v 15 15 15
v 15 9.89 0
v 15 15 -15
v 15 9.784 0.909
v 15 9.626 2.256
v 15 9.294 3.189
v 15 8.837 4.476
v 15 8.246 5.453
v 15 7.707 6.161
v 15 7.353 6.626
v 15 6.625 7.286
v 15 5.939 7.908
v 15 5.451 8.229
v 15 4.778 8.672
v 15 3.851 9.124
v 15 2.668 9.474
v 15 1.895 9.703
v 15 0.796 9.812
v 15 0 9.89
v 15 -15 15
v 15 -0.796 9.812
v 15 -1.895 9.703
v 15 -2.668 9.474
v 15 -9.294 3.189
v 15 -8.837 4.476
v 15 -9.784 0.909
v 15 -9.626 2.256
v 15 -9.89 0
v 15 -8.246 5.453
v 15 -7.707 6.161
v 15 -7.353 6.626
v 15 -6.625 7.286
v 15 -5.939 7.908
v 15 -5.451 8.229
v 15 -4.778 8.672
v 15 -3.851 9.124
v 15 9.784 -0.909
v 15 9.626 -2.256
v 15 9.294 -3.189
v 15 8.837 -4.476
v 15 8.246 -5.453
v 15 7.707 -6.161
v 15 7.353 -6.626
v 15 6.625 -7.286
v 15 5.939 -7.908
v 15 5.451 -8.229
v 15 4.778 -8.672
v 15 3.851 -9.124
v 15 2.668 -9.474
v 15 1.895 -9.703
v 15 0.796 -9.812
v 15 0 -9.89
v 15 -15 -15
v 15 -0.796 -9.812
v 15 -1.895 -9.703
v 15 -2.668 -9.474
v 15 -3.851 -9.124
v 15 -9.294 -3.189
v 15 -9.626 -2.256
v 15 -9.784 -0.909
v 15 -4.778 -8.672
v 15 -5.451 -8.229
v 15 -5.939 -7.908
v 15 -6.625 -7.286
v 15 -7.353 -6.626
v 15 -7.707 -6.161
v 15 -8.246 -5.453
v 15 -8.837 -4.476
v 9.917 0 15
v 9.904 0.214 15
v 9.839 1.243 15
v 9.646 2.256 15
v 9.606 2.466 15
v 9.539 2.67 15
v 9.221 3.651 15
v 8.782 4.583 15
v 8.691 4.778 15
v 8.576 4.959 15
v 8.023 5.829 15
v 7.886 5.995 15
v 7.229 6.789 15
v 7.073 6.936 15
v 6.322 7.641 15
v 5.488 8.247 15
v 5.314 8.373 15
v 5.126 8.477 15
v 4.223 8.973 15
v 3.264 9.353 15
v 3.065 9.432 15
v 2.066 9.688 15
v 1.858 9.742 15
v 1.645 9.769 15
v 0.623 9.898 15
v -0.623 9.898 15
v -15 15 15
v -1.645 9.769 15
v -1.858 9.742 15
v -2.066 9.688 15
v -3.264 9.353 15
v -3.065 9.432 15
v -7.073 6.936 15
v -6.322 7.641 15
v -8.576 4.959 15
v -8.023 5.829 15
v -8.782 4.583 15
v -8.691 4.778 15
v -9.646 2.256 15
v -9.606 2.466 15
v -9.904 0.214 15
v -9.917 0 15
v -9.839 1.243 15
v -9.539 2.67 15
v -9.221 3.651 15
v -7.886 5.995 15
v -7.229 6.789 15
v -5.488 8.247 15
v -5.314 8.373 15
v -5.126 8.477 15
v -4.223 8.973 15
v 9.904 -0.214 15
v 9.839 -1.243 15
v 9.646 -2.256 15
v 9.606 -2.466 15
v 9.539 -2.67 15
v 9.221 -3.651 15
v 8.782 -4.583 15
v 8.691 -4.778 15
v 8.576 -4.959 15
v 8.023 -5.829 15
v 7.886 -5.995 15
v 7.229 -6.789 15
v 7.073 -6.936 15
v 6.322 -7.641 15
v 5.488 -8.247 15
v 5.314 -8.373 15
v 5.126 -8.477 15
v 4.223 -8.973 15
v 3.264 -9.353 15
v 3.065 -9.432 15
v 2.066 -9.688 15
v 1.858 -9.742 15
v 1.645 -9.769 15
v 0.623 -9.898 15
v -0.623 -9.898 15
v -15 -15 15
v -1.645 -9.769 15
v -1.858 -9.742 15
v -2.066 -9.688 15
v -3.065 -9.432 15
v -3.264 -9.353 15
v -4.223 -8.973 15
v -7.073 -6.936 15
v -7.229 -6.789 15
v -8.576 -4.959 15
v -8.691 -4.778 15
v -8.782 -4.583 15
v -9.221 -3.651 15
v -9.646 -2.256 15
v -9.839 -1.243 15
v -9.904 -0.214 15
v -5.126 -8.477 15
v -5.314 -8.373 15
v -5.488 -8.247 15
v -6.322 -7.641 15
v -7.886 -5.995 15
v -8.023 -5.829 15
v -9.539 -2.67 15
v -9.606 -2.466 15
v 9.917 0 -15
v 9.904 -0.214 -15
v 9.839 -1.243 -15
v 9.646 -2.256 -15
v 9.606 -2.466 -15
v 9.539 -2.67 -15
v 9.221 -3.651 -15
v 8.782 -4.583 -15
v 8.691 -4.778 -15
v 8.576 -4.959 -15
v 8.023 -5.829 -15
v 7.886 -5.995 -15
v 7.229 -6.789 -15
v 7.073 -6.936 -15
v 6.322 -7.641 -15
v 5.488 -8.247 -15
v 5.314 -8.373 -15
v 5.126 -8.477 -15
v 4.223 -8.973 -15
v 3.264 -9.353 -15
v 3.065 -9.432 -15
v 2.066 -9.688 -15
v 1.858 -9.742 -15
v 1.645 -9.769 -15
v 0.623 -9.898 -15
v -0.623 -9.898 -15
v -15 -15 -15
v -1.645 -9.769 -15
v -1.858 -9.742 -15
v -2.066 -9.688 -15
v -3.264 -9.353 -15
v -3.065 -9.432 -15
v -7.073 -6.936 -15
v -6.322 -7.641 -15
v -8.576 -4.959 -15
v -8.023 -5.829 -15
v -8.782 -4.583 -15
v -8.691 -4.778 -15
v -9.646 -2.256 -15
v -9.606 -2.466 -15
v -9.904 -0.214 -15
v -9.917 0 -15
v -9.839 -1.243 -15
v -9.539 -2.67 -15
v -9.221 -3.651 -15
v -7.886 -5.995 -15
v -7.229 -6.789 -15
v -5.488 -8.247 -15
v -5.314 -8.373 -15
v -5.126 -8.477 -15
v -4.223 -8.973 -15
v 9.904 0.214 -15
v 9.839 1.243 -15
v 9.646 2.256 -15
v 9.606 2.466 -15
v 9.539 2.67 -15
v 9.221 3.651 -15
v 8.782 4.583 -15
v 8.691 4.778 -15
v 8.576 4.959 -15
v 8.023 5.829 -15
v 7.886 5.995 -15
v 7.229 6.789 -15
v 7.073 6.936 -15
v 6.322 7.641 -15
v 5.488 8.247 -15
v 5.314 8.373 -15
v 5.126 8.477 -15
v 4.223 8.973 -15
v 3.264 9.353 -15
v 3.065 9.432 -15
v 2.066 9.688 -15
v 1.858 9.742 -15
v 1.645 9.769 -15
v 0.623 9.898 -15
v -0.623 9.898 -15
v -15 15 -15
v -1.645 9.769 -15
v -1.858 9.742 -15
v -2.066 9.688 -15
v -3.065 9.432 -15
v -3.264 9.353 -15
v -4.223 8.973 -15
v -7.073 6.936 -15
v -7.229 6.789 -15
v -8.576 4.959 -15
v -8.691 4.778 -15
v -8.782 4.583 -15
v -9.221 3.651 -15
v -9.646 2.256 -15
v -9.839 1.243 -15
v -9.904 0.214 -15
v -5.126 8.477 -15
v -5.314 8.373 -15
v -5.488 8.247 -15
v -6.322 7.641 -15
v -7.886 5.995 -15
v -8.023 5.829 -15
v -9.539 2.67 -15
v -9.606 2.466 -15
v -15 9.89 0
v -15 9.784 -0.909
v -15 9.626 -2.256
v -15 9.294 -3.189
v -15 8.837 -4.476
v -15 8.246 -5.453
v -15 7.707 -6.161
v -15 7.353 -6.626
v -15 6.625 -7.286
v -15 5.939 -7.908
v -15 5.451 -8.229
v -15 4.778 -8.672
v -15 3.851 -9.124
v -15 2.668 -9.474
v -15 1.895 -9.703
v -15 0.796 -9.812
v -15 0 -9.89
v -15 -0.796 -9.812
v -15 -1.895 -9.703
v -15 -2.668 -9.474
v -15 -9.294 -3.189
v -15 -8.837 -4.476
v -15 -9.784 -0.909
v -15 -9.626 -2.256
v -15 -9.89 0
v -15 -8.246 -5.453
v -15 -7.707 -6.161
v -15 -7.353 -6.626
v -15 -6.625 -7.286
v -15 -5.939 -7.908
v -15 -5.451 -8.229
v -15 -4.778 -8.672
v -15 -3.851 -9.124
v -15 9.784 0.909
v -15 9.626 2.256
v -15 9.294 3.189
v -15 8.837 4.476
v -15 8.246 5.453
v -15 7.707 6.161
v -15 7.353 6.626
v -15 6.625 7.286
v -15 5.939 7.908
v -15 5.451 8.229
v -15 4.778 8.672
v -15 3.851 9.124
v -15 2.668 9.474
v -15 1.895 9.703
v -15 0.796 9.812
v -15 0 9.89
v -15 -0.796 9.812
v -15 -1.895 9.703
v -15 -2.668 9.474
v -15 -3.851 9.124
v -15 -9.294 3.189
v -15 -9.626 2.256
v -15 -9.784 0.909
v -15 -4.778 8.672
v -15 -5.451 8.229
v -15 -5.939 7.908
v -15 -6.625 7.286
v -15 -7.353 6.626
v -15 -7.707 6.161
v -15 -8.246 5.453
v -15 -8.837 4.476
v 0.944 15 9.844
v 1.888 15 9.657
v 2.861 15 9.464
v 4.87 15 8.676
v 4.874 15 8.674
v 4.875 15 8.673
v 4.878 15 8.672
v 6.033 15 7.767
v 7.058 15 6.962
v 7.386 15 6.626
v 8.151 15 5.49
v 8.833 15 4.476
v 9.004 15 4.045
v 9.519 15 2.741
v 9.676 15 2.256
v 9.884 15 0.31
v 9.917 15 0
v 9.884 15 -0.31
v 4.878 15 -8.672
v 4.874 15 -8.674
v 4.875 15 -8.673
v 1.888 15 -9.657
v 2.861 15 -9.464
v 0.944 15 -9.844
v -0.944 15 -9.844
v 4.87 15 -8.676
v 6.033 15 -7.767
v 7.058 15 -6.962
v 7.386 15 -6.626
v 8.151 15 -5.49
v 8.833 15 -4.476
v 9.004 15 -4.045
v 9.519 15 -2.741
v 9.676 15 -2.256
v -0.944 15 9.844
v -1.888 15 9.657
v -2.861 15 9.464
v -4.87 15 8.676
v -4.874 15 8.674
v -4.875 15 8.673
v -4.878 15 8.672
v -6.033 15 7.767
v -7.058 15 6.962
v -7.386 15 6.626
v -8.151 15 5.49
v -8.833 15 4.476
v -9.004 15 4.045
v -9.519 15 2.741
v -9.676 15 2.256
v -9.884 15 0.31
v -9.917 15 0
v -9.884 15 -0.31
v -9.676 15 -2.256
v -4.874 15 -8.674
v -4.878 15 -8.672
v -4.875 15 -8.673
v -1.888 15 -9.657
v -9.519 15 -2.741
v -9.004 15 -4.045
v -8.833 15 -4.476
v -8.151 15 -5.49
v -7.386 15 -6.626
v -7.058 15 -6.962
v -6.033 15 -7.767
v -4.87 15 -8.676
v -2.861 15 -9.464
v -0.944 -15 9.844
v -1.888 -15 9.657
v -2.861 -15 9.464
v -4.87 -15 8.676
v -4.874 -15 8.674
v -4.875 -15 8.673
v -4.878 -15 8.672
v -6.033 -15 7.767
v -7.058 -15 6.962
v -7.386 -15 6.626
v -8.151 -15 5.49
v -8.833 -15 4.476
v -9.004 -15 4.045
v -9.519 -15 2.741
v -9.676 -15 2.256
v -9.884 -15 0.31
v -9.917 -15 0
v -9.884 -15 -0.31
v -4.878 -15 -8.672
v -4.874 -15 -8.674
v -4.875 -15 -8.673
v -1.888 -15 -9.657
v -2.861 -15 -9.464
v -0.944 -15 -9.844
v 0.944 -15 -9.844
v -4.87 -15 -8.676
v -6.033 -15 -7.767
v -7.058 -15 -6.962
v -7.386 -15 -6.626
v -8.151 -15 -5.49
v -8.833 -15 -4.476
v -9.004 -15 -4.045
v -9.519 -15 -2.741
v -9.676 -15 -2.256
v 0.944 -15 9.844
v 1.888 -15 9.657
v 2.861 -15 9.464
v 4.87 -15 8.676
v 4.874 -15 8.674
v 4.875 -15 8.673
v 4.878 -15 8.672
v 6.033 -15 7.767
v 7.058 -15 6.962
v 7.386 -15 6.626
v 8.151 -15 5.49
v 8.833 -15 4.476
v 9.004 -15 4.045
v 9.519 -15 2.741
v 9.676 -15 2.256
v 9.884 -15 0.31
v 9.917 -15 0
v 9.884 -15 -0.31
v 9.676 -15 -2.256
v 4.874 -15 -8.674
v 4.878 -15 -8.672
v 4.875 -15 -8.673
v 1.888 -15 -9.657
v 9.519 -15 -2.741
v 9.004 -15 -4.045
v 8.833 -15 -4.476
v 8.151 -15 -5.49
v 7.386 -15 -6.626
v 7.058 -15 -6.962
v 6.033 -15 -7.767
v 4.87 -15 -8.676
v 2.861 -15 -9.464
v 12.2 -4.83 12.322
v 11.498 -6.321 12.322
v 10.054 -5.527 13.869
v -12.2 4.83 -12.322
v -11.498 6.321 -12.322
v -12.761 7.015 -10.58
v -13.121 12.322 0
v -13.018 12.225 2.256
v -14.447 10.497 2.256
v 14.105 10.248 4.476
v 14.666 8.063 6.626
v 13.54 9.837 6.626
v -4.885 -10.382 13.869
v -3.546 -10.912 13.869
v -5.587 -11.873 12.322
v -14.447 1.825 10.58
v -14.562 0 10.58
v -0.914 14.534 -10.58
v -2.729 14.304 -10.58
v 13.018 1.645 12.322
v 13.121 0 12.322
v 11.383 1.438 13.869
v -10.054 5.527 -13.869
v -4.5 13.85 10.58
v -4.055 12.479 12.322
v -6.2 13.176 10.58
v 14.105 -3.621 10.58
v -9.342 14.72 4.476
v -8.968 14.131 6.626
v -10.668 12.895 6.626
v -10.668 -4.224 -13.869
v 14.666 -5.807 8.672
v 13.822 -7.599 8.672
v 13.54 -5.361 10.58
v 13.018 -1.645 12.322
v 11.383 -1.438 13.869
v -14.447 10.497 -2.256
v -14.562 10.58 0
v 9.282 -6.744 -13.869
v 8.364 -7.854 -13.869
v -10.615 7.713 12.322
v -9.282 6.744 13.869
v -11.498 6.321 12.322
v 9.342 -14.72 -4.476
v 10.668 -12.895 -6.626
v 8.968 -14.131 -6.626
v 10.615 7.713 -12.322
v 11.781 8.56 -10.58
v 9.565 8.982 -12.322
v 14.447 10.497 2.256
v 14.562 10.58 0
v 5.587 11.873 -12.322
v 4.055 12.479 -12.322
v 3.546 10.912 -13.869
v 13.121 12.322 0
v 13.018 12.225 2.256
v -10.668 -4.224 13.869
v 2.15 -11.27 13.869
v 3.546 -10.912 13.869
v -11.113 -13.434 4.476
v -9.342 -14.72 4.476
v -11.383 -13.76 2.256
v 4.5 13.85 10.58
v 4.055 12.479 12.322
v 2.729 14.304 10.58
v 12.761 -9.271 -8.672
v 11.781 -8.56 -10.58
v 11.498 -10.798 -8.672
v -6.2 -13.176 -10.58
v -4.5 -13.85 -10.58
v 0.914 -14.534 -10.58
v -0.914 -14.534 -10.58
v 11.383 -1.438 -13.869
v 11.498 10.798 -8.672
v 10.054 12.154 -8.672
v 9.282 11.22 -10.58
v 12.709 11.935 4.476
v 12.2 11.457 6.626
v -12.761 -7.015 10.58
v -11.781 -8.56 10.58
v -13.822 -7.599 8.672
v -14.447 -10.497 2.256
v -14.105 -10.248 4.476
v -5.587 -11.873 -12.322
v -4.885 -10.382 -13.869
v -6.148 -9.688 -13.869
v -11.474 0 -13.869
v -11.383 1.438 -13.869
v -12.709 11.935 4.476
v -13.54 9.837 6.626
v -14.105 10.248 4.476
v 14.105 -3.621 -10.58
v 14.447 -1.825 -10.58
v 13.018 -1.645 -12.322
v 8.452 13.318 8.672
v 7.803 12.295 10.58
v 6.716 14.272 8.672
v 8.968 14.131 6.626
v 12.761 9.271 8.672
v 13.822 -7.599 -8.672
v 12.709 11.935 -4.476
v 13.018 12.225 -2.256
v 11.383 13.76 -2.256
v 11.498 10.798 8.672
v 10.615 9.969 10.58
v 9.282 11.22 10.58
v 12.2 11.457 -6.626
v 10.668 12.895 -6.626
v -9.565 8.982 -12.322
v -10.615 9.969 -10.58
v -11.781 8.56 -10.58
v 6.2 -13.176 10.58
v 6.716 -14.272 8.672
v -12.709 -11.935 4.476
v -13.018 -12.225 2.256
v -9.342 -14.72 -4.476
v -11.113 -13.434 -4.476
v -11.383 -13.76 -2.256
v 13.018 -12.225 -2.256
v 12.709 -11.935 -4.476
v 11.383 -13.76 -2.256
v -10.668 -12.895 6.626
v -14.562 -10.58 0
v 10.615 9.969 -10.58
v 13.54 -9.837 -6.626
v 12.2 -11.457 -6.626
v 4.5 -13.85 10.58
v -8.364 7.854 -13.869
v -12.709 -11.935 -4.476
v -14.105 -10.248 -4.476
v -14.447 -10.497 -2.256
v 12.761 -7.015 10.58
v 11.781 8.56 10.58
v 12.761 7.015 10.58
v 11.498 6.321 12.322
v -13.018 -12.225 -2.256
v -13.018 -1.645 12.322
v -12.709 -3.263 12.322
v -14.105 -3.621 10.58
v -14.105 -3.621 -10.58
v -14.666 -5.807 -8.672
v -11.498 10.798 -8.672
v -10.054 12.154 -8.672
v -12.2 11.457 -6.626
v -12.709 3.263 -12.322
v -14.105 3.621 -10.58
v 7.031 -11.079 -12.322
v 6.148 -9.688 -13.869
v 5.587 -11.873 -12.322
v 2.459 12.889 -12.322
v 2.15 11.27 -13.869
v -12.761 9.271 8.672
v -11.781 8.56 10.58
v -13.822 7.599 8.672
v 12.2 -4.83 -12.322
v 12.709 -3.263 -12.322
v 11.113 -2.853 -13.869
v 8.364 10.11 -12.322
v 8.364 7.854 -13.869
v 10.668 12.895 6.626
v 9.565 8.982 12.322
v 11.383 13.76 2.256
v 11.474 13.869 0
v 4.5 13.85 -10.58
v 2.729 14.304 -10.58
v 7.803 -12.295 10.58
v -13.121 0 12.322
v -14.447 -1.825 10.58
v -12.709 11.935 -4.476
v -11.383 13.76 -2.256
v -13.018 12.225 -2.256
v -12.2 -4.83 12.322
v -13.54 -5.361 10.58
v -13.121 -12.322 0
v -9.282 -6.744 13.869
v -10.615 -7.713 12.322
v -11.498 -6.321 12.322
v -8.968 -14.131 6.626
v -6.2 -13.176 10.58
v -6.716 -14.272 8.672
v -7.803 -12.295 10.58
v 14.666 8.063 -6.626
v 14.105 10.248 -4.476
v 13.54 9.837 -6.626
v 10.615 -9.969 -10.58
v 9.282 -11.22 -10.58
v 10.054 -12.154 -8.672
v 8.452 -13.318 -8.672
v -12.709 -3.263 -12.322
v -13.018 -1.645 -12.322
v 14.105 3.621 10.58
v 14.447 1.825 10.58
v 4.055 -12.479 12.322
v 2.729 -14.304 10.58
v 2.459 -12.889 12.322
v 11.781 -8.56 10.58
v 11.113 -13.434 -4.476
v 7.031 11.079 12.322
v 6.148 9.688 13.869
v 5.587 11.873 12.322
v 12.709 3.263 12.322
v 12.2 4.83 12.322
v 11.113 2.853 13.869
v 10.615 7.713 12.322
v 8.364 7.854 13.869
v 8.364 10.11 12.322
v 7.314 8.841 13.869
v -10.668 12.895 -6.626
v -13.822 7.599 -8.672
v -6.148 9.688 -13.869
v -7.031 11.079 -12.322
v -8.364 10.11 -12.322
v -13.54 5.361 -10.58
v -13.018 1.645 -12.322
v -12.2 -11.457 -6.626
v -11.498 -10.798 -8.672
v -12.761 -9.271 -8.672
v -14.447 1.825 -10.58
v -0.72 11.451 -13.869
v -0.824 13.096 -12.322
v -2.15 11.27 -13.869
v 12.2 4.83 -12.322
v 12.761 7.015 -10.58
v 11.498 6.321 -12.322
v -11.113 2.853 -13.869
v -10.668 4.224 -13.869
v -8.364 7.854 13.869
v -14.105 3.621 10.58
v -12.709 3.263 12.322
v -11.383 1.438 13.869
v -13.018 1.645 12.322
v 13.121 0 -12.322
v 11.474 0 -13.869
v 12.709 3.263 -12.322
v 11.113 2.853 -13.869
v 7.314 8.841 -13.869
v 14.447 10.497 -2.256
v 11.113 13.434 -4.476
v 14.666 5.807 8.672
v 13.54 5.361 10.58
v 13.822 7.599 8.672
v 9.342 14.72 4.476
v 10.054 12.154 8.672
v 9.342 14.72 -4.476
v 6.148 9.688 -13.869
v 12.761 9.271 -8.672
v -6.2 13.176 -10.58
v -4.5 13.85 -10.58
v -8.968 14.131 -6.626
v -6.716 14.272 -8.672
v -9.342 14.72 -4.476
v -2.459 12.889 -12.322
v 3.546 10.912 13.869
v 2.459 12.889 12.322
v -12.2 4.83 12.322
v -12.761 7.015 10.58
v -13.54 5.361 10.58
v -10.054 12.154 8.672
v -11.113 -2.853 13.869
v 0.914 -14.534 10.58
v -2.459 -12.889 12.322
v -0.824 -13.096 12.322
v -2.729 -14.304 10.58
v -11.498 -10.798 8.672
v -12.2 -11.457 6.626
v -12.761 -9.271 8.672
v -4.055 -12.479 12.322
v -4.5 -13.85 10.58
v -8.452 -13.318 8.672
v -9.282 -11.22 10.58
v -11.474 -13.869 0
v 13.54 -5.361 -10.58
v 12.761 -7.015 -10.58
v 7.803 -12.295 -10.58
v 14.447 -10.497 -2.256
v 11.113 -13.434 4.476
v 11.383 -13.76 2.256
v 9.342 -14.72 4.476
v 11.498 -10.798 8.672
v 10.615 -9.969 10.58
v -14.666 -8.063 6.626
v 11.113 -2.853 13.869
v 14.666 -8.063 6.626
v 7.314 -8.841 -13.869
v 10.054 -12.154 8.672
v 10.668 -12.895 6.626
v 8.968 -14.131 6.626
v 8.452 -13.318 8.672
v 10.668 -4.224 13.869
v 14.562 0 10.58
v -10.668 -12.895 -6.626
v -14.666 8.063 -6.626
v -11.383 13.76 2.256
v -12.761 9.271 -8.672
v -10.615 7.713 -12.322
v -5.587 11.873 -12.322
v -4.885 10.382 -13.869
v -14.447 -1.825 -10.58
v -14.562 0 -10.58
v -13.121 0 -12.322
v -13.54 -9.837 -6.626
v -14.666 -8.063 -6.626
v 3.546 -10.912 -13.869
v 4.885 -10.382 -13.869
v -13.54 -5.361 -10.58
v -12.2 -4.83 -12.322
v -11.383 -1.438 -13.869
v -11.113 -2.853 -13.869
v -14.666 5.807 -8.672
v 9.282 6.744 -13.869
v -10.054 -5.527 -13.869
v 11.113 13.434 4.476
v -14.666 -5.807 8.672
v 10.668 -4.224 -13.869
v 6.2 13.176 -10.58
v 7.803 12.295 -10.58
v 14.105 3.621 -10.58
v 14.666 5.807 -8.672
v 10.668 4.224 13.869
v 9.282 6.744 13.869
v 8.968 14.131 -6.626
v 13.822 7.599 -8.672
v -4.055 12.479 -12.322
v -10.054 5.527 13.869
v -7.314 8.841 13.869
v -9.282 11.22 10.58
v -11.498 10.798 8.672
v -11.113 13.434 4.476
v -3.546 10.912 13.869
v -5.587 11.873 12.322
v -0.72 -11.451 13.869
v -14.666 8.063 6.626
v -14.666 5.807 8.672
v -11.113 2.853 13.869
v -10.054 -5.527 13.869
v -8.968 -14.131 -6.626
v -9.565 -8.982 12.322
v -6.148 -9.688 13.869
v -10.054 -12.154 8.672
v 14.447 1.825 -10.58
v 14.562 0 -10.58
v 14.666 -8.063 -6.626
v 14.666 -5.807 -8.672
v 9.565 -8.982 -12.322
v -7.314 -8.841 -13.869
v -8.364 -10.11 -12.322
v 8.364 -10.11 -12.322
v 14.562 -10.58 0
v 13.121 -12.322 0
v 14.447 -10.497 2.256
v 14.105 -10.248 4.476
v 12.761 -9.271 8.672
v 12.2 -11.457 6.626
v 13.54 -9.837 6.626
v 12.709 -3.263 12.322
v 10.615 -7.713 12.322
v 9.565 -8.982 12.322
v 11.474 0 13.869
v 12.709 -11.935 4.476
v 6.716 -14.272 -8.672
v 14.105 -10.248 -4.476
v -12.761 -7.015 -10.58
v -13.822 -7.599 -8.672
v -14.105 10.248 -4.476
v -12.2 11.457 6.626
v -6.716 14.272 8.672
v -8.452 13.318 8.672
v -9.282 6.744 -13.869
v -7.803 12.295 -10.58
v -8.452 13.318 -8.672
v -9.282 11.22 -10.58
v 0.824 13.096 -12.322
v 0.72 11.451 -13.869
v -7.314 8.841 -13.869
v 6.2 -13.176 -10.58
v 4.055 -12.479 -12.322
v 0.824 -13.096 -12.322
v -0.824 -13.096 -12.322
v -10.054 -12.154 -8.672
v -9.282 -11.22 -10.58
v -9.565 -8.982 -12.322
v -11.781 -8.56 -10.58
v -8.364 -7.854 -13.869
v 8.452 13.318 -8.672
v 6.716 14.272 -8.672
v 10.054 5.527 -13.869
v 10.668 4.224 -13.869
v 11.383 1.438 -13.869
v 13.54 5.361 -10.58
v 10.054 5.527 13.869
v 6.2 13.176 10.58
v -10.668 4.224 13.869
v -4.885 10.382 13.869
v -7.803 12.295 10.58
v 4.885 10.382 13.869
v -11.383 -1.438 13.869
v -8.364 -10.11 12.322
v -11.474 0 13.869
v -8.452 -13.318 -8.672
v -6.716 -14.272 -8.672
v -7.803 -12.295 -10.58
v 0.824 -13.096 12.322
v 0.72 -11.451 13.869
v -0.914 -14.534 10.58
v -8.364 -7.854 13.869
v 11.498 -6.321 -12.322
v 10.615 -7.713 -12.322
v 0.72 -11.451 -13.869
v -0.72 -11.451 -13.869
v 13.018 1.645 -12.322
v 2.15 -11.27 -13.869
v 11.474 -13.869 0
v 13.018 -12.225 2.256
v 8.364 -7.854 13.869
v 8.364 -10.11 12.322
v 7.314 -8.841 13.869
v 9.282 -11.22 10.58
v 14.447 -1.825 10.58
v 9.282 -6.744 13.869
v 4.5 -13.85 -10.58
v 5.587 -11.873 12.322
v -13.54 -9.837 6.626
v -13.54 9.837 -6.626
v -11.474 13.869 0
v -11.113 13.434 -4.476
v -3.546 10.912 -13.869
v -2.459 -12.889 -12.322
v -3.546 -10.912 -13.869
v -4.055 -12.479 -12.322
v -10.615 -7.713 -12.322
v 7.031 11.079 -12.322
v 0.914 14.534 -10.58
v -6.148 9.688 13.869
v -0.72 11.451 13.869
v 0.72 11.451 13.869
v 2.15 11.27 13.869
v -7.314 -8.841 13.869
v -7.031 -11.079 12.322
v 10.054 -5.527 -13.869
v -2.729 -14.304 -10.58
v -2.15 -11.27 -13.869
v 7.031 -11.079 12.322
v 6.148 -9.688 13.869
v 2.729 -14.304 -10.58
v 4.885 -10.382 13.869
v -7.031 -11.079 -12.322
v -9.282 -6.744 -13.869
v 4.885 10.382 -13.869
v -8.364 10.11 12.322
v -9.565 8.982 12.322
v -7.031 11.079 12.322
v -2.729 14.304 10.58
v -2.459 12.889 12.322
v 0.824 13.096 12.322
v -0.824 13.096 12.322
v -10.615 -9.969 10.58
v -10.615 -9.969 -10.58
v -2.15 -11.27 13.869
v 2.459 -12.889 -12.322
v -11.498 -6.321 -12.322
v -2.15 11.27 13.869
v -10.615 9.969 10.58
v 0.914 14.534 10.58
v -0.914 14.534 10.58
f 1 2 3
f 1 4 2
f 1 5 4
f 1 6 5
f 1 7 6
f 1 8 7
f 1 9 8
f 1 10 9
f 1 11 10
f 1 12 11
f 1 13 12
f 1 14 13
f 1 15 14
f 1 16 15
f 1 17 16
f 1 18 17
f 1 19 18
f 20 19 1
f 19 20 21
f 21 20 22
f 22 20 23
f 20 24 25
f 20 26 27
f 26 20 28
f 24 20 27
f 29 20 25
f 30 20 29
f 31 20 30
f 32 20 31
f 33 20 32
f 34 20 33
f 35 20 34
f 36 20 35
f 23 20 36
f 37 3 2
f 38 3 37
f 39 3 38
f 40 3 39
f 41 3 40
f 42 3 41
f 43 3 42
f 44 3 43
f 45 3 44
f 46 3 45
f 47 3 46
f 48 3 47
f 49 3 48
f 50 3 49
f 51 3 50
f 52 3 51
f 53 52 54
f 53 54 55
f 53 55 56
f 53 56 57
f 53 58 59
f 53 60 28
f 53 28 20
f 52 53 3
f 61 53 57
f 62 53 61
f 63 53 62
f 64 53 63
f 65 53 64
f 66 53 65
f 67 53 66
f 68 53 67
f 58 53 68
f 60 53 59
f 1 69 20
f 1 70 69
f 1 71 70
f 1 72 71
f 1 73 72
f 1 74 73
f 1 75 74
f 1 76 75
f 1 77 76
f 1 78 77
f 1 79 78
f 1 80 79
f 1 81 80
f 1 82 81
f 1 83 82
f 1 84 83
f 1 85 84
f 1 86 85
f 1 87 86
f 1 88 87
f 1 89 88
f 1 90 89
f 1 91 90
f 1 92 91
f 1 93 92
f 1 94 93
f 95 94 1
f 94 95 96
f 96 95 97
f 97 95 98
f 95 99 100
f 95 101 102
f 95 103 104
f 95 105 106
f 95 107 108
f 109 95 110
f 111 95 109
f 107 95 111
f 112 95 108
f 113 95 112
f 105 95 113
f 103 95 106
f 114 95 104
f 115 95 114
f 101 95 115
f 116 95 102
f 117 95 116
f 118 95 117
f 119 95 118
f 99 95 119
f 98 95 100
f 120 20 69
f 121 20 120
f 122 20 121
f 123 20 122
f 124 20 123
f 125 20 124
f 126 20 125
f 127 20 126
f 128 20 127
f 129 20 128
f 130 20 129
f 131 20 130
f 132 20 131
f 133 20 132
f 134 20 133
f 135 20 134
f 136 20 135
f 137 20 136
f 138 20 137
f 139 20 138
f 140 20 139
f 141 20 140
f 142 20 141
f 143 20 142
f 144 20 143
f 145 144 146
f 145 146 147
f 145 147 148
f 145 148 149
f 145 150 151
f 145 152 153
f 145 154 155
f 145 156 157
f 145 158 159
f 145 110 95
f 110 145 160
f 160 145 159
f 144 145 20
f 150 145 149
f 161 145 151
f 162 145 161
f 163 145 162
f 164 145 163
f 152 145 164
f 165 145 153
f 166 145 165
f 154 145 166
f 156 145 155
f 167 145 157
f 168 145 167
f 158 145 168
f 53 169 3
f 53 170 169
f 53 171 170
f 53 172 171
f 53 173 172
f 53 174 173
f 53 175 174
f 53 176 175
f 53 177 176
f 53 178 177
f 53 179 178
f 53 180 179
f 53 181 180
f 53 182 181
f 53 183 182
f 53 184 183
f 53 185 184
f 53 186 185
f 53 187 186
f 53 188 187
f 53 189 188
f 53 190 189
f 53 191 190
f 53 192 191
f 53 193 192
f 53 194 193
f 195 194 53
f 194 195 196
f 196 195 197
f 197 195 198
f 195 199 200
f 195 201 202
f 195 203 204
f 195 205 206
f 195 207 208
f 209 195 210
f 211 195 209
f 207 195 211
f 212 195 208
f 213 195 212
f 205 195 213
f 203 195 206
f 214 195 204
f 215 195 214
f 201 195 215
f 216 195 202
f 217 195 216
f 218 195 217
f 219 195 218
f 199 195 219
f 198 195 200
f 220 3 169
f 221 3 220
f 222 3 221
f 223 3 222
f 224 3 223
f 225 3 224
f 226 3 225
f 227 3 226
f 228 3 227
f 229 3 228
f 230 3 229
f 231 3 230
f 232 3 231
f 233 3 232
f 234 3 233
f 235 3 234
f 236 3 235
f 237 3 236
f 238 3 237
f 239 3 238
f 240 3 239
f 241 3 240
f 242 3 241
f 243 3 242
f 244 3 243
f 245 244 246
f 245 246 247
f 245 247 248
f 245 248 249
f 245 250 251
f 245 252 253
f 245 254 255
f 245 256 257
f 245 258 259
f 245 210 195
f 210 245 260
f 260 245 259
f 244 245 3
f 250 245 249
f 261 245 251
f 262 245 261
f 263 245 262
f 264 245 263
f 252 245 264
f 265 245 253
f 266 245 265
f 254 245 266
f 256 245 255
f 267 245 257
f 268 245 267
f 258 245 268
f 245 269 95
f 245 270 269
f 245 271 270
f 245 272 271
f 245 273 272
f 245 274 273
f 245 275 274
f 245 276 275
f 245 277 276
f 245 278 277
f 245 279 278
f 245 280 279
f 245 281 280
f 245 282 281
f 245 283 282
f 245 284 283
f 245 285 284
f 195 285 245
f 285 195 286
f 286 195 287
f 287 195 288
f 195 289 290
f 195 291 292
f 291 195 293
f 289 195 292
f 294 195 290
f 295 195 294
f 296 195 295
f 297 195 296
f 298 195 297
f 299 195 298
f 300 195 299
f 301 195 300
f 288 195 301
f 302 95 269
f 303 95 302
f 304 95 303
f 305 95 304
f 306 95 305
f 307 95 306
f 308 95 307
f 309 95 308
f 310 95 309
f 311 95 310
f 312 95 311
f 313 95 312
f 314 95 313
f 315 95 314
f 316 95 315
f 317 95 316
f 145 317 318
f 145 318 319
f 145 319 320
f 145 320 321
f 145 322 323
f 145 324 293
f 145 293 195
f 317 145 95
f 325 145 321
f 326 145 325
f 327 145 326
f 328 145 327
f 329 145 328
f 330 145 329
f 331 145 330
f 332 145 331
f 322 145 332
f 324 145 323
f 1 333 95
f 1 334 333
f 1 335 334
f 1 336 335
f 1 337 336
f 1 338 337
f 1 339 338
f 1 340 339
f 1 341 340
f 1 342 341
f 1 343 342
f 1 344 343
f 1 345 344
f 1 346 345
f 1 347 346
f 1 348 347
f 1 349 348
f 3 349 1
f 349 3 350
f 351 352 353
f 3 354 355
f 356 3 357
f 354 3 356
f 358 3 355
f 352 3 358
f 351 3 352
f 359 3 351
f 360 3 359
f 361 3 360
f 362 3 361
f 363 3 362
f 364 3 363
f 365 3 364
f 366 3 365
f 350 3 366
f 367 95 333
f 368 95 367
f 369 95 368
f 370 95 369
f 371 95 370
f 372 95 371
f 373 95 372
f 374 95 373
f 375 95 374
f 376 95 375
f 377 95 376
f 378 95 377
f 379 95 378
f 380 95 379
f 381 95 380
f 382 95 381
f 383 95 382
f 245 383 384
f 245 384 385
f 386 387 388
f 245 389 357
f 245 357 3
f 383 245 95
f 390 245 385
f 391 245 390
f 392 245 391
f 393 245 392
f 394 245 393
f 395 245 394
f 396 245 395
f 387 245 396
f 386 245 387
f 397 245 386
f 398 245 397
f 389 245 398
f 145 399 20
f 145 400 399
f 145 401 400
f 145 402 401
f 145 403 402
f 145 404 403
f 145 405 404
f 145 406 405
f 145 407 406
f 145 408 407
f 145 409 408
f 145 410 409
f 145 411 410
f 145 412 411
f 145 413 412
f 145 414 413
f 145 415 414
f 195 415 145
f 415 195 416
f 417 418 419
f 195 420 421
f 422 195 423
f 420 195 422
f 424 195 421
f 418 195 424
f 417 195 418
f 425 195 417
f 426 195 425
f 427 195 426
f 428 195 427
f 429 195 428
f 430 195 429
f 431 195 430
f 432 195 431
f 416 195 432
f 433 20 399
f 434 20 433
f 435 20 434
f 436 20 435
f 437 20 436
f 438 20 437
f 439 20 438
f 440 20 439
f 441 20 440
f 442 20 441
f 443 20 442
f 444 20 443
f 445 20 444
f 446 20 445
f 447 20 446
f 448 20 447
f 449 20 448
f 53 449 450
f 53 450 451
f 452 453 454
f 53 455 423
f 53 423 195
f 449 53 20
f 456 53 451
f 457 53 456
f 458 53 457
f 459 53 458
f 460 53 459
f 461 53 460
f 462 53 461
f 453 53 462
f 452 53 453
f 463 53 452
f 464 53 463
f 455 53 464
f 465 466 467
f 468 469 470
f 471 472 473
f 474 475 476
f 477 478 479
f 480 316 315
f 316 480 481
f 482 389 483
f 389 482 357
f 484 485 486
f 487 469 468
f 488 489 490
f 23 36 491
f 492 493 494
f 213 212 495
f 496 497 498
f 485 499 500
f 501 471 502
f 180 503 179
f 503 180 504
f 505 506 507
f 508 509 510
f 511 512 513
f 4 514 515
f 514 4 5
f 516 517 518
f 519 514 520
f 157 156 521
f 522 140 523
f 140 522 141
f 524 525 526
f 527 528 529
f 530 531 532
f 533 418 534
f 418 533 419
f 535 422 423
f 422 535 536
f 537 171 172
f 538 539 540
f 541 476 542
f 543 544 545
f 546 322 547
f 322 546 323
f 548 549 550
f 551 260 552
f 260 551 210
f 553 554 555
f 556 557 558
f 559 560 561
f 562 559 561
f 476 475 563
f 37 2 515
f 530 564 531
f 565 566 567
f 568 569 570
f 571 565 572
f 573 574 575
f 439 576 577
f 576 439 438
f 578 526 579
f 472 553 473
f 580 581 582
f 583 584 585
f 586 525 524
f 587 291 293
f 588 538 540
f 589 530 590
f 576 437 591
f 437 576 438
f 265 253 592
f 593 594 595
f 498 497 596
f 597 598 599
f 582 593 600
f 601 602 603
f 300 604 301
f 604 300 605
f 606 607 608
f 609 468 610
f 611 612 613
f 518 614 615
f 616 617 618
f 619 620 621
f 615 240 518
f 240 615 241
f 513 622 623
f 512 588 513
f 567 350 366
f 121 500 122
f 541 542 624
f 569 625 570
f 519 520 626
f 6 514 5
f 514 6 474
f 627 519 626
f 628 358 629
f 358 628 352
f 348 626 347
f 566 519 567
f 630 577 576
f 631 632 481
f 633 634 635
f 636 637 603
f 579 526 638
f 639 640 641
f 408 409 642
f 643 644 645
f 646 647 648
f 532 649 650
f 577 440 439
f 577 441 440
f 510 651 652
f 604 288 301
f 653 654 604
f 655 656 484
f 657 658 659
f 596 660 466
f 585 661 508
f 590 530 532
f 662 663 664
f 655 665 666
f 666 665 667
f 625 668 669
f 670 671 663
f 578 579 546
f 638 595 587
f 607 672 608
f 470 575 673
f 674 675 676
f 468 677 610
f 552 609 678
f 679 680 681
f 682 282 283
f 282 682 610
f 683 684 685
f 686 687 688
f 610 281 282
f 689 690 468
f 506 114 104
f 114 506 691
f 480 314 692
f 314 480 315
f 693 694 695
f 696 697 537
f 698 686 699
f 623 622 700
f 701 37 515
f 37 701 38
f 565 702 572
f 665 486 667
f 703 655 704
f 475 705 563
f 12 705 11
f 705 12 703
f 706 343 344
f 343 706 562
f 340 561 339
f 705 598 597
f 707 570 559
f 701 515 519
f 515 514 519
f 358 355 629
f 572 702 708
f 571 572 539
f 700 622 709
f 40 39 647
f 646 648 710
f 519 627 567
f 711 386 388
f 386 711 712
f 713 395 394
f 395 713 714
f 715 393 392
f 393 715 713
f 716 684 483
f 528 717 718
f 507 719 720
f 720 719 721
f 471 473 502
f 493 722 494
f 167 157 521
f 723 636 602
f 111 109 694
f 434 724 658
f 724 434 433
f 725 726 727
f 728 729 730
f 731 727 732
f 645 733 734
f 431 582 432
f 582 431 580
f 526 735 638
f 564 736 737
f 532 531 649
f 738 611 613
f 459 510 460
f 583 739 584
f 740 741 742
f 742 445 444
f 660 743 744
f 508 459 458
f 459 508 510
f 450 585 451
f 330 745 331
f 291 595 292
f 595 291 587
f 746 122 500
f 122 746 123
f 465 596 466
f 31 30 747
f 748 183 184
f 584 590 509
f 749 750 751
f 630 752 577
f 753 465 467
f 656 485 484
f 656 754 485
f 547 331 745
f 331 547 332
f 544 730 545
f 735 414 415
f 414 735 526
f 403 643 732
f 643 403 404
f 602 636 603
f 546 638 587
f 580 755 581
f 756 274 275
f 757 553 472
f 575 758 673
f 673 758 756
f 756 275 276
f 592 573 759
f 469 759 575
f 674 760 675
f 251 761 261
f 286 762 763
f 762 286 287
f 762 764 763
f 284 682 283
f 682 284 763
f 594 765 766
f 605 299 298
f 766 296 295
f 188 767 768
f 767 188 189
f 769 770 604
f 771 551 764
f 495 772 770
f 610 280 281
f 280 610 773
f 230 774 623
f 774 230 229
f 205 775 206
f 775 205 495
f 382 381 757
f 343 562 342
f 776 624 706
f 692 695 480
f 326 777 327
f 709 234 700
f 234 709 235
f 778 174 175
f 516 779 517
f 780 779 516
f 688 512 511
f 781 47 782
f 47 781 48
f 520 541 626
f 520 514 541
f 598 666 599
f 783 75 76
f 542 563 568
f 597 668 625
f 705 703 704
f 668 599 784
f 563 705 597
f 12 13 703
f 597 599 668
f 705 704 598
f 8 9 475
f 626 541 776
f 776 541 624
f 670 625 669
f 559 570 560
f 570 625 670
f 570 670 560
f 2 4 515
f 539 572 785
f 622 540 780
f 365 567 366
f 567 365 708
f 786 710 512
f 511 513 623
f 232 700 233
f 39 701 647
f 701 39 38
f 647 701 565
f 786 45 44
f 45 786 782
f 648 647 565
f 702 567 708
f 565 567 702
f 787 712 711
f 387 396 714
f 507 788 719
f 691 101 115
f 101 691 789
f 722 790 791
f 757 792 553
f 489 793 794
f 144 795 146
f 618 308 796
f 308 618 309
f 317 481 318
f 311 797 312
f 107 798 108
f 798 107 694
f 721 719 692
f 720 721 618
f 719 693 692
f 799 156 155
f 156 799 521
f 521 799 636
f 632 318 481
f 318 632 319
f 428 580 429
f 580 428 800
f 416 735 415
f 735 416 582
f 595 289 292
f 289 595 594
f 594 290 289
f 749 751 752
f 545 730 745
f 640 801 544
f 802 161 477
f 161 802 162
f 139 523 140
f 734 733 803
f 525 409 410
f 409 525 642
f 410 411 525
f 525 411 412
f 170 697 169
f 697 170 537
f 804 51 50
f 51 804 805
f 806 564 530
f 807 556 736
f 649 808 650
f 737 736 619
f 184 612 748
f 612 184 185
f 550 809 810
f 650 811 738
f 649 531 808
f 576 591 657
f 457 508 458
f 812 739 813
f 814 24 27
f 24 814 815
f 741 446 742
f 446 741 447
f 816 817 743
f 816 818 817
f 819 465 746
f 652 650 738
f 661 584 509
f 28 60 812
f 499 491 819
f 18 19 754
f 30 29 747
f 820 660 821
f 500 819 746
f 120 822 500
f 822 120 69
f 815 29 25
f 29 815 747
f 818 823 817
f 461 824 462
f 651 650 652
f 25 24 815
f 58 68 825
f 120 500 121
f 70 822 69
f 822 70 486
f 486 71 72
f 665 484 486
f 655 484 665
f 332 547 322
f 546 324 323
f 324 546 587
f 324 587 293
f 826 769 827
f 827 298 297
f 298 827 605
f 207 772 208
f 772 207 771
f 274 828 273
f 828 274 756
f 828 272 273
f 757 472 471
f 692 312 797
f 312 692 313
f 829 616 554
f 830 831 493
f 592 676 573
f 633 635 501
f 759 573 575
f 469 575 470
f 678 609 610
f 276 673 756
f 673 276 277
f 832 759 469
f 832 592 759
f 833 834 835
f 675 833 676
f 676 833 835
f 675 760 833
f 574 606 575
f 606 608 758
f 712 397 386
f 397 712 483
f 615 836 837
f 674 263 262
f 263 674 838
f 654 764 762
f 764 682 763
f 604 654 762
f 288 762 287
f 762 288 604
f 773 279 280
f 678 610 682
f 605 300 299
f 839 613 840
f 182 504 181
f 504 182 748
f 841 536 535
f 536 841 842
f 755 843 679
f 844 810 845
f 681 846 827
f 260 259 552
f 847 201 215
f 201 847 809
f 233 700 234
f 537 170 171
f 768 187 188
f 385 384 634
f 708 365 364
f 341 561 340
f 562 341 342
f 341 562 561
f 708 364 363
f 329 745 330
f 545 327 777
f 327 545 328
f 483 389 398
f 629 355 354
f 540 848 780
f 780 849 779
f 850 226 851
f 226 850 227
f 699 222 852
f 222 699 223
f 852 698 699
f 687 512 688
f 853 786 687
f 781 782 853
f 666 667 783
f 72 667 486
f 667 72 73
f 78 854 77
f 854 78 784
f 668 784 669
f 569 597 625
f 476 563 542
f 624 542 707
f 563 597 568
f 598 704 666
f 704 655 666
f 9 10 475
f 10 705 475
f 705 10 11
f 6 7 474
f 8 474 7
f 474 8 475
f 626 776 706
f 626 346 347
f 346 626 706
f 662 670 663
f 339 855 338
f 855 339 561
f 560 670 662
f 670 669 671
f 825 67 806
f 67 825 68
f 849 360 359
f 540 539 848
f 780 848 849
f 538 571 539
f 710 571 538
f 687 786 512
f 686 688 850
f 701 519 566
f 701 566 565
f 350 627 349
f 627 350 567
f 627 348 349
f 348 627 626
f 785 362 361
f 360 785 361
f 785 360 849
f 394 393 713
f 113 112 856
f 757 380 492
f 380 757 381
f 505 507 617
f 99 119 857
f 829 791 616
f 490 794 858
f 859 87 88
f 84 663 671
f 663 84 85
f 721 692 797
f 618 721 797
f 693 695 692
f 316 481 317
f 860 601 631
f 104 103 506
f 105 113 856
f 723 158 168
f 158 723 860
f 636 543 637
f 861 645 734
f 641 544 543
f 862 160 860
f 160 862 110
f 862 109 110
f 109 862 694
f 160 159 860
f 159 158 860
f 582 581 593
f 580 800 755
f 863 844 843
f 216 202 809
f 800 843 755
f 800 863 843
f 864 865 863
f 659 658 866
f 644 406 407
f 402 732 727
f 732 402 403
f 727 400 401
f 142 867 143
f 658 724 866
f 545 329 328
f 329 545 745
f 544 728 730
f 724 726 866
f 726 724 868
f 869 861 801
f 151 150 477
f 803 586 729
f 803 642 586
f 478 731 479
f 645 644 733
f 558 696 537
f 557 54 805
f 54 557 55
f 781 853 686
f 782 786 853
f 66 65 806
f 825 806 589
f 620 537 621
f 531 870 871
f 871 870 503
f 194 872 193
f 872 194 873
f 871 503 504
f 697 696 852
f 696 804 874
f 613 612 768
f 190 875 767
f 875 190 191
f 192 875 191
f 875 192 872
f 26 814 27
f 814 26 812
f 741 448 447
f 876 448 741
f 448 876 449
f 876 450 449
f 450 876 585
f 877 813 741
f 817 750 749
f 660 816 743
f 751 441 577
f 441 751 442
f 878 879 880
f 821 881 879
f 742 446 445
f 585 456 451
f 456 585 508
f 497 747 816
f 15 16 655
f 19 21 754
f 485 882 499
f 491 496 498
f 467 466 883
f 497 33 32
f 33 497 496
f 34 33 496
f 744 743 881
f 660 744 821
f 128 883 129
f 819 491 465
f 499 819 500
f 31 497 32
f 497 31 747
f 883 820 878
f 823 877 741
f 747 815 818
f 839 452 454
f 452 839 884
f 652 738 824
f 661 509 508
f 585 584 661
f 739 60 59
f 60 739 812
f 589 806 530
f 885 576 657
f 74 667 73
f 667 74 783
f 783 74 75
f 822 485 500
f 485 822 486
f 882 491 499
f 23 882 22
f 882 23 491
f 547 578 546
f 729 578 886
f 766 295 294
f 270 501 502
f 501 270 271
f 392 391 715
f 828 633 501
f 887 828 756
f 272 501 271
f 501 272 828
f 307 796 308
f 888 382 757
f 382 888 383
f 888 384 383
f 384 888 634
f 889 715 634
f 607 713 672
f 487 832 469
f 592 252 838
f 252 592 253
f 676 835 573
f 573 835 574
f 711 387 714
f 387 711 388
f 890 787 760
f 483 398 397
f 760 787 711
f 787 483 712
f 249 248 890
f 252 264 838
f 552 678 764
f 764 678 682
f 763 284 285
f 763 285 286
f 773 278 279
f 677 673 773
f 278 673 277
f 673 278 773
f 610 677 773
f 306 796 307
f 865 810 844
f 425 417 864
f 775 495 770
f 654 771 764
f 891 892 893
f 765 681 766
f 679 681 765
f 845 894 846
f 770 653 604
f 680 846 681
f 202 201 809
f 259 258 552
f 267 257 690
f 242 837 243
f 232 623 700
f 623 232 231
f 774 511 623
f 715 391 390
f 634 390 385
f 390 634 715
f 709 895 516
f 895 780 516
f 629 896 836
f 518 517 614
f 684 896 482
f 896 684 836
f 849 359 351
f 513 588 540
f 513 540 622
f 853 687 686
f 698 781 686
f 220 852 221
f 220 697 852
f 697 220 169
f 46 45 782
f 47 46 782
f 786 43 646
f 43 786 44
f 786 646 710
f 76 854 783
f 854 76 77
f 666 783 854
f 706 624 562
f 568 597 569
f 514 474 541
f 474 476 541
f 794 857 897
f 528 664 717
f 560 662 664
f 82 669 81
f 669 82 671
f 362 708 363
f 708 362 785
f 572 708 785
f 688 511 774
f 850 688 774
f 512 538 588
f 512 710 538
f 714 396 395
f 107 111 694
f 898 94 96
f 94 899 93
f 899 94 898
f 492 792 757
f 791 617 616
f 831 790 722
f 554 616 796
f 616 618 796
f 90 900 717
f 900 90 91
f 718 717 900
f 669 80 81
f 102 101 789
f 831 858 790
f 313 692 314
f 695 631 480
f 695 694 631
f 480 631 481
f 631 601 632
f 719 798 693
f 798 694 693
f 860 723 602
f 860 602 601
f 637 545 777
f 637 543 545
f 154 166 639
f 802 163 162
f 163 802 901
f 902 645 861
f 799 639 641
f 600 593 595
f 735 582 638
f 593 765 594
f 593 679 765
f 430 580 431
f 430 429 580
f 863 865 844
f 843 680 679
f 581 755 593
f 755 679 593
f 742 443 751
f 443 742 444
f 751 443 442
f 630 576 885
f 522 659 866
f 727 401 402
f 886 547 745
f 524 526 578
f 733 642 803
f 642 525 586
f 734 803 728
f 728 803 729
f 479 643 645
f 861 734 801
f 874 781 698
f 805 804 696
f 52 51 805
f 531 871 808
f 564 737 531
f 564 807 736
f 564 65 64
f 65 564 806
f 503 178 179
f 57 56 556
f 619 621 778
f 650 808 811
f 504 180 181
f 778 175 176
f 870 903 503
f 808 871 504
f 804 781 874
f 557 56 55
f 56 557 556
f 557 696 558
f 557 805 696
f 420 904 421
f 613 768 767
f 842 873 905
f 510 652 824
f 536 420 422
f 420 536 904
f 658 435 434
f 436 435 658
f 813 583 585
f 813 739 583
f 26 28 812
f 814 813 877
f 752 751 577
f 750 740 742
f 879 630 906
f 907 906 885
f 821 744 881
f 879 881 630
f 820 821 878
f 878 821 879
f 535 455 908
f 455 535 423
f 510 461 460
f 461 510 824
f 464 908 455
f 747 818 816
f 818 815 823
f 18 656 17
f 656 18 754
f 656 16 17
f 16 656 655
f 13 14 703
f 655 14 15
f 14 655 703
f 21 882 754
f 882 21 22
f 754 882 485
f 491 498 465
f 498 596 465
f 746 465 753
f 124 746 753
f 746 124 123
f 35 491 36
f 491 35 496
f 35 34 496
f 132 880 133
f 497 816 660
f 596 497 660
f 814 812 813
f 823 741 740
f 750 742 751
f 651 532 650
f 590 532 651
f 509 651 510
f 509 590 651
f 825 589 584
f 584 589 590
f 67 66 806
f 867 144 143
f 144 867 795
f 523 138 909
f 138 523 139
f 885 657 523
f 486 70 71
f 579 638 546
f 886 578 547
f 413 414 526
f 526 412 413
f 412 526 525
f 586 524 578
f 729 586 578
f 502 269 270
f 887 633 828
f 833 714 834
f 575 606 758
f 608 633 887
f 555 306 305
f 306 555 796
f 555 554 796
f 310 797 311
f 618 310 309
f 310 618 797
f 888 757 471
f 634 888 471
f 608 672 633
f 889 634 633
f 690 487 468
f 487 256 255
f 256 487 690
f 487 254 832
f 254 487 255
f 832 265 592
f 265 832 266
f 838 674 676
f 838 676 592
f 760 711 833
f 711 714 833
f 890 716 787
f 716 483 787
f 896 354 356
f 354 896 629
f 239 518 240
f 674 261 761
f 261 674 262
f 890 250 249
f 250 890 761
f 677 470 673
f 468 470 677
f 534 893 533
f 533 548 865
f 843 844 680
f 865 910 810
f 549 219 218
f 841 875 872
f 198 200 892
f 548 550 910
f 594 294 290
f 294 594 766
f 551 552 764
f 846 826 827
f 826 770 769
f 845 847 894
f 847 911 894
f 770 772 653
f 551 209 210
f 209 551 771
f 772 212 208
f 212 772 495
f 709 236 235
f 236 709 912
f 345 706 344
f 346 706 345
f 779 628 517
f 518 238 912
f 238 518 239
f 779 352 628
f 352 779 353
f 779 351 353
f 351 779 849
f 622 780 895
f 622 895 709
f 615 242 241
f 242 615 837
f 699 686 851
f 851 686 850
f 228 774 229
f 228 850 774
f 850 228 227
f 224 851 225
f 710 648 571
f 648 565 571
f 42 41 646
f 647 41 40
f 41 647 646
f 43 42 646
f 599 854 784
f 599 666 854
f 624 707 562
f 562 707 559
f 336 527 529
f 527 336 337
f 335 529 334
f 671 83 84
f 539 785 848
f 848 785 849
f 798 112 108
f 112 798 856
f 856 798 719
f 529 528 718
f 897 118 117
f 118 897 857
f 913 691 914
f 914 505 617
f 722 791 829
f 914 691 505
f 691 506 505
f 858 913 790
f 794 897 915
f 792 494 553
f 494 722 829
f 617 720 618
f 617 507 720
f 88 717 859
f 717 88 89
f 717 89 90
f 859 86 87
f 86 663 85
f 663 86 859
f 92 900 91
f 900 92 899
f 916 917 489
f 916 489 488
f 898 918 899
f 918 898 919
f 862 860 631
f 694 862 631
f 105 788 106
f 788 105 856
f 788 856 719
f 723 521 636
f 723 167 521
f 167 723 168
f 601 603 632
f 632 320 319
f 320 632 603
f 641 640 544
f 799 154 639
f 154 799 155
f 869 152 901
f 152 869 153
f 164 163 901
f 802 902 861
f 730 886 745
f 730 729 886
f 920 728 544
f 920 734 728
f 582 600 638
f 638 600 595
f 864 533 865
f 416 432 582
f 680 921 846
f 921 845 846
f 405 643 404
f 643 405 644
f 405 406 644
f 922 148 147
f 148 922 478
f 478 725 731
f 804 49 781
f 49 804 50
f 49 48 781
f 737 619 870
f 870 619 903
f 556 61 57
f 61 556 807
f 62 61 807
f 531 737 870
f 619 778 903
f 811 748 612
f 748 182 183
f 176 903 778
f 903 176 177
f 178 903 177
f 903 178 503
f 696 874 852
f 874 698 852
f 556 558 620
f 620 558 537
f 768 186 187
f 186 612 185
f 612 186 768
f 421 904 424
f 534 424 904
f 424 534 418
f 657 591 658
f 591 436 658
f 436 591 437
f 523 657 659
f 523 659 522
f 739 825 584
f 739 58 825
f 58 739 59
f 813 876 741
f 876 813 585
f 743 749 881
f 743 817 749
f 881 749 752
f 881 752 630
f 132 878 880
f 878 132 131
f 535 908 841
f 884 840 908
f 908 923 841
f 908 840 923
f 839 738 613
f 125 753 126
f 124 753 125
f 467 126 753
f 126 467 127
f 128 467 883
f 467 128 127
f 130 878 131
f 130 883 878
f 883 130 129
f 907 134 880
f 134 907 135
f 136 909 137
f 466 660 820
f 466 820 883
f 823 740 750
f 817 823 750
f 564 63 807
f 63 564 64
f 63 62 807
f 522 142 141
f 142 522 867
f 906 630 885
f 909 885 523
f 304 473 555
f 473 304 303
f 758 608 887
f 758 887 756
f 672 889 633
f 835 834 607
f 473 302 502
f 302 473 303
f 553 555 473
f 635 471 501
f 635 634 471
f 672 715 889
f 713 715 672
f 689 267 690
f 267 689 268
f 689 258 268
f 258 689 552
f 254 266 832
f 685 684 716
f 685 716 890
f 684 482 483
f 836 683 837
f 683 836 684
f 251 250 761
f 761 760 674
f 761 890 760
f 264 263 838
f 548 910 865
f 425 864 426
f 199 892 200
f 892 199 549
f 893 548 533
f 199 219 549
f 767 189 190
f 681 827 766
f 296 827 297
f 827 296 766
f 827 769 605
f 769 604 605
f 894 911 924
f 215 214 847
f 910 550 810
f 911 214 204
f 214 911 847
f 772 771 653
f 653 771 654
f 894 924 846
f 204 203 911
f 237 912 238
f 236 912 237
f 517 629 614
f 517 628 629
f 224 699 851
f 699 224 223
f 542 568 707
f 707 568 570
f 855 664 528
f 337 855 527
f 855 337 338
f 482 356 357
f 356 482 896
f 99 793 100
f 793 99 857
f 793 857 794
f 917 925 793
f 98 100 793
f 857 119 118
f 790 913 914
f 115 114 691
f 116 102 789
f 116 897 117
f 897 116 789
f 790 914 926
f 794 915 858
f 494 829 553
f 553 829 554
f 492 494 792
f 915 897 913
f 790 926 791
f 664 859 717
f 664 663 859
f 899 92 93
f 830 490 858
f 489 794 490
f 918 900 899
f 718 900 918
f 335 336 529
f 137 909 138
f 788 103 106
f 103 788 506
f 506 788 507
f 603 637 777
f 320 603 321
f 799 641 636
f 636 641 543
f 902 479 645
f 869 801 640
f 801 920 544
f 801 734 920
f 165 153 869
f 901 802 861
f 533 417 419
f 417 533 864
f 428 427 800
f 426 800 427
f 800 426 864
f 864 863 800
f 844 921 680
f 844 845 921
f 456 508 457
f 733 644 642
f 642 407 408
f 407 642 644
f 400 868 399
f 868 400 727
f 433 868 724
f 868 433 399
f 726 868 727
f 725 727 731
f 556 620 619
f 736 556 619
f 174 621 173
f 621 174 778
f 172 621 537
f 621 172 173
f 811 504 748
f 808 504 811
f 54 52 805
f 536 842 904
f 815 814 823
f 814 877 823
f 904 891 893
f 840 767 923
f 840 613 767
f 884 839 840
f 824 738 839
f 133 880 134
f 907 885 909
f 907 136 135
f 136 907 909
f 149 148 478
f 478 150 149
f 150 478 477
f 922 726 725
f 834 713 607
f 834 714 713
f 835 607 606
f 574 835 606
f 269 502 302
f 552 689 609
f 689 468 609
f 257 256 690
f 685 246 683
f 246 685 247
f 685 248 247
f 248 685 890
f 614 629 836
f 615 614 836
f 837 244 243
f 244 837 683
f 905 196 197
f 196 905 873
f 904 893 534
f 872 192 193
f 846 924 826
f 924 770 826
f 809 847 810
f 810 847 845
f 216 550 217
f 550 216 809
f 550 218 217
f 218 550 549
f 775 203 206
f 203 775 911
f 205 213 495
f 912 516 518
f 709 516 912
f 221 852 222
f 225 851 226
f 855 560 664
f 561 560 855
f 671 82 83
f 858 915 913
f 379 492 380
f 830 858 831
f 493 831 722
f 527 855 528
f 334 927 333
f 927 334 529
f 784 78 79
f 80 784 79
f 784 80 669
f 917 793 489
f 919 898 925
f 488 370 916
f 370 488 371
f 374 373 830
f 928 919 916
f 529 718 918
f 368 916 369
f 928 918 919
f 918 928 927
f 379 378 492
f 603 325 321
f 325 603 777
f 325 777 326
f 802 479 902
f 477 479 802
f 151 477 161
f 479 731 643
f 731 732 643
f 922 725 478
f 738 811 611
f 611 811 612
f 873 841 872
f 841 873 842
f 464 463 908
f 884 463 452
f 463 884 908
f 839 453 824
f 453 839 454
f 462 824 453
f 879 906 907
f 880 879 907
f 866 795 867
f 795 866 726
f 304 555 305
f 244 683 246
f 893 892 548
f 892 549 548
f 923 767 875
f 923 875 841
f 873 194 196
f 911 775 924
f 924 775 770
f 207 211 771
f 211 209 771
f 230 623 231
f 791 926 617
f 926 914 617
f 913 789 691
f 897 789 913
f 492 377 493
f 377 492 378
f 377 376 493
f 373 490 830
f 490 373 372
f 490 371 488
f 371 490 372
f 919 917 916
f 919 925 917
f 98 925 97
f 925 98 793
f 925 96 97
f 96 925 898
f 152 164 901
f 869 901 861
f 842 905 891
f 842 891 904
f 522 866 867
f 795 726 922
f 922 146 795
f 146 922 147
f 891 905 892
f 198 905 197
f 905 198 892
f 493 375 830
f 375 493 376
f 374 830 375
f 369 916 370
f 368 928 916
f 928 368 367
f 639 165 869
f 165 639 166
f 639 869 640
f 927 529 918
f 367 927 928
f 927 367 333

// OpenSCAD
// Difference operation - cube with spherical cavity
difference() {
    cube([30, 30, 30], center = true);
    sphere(r = 18, $fn = 50);
}
